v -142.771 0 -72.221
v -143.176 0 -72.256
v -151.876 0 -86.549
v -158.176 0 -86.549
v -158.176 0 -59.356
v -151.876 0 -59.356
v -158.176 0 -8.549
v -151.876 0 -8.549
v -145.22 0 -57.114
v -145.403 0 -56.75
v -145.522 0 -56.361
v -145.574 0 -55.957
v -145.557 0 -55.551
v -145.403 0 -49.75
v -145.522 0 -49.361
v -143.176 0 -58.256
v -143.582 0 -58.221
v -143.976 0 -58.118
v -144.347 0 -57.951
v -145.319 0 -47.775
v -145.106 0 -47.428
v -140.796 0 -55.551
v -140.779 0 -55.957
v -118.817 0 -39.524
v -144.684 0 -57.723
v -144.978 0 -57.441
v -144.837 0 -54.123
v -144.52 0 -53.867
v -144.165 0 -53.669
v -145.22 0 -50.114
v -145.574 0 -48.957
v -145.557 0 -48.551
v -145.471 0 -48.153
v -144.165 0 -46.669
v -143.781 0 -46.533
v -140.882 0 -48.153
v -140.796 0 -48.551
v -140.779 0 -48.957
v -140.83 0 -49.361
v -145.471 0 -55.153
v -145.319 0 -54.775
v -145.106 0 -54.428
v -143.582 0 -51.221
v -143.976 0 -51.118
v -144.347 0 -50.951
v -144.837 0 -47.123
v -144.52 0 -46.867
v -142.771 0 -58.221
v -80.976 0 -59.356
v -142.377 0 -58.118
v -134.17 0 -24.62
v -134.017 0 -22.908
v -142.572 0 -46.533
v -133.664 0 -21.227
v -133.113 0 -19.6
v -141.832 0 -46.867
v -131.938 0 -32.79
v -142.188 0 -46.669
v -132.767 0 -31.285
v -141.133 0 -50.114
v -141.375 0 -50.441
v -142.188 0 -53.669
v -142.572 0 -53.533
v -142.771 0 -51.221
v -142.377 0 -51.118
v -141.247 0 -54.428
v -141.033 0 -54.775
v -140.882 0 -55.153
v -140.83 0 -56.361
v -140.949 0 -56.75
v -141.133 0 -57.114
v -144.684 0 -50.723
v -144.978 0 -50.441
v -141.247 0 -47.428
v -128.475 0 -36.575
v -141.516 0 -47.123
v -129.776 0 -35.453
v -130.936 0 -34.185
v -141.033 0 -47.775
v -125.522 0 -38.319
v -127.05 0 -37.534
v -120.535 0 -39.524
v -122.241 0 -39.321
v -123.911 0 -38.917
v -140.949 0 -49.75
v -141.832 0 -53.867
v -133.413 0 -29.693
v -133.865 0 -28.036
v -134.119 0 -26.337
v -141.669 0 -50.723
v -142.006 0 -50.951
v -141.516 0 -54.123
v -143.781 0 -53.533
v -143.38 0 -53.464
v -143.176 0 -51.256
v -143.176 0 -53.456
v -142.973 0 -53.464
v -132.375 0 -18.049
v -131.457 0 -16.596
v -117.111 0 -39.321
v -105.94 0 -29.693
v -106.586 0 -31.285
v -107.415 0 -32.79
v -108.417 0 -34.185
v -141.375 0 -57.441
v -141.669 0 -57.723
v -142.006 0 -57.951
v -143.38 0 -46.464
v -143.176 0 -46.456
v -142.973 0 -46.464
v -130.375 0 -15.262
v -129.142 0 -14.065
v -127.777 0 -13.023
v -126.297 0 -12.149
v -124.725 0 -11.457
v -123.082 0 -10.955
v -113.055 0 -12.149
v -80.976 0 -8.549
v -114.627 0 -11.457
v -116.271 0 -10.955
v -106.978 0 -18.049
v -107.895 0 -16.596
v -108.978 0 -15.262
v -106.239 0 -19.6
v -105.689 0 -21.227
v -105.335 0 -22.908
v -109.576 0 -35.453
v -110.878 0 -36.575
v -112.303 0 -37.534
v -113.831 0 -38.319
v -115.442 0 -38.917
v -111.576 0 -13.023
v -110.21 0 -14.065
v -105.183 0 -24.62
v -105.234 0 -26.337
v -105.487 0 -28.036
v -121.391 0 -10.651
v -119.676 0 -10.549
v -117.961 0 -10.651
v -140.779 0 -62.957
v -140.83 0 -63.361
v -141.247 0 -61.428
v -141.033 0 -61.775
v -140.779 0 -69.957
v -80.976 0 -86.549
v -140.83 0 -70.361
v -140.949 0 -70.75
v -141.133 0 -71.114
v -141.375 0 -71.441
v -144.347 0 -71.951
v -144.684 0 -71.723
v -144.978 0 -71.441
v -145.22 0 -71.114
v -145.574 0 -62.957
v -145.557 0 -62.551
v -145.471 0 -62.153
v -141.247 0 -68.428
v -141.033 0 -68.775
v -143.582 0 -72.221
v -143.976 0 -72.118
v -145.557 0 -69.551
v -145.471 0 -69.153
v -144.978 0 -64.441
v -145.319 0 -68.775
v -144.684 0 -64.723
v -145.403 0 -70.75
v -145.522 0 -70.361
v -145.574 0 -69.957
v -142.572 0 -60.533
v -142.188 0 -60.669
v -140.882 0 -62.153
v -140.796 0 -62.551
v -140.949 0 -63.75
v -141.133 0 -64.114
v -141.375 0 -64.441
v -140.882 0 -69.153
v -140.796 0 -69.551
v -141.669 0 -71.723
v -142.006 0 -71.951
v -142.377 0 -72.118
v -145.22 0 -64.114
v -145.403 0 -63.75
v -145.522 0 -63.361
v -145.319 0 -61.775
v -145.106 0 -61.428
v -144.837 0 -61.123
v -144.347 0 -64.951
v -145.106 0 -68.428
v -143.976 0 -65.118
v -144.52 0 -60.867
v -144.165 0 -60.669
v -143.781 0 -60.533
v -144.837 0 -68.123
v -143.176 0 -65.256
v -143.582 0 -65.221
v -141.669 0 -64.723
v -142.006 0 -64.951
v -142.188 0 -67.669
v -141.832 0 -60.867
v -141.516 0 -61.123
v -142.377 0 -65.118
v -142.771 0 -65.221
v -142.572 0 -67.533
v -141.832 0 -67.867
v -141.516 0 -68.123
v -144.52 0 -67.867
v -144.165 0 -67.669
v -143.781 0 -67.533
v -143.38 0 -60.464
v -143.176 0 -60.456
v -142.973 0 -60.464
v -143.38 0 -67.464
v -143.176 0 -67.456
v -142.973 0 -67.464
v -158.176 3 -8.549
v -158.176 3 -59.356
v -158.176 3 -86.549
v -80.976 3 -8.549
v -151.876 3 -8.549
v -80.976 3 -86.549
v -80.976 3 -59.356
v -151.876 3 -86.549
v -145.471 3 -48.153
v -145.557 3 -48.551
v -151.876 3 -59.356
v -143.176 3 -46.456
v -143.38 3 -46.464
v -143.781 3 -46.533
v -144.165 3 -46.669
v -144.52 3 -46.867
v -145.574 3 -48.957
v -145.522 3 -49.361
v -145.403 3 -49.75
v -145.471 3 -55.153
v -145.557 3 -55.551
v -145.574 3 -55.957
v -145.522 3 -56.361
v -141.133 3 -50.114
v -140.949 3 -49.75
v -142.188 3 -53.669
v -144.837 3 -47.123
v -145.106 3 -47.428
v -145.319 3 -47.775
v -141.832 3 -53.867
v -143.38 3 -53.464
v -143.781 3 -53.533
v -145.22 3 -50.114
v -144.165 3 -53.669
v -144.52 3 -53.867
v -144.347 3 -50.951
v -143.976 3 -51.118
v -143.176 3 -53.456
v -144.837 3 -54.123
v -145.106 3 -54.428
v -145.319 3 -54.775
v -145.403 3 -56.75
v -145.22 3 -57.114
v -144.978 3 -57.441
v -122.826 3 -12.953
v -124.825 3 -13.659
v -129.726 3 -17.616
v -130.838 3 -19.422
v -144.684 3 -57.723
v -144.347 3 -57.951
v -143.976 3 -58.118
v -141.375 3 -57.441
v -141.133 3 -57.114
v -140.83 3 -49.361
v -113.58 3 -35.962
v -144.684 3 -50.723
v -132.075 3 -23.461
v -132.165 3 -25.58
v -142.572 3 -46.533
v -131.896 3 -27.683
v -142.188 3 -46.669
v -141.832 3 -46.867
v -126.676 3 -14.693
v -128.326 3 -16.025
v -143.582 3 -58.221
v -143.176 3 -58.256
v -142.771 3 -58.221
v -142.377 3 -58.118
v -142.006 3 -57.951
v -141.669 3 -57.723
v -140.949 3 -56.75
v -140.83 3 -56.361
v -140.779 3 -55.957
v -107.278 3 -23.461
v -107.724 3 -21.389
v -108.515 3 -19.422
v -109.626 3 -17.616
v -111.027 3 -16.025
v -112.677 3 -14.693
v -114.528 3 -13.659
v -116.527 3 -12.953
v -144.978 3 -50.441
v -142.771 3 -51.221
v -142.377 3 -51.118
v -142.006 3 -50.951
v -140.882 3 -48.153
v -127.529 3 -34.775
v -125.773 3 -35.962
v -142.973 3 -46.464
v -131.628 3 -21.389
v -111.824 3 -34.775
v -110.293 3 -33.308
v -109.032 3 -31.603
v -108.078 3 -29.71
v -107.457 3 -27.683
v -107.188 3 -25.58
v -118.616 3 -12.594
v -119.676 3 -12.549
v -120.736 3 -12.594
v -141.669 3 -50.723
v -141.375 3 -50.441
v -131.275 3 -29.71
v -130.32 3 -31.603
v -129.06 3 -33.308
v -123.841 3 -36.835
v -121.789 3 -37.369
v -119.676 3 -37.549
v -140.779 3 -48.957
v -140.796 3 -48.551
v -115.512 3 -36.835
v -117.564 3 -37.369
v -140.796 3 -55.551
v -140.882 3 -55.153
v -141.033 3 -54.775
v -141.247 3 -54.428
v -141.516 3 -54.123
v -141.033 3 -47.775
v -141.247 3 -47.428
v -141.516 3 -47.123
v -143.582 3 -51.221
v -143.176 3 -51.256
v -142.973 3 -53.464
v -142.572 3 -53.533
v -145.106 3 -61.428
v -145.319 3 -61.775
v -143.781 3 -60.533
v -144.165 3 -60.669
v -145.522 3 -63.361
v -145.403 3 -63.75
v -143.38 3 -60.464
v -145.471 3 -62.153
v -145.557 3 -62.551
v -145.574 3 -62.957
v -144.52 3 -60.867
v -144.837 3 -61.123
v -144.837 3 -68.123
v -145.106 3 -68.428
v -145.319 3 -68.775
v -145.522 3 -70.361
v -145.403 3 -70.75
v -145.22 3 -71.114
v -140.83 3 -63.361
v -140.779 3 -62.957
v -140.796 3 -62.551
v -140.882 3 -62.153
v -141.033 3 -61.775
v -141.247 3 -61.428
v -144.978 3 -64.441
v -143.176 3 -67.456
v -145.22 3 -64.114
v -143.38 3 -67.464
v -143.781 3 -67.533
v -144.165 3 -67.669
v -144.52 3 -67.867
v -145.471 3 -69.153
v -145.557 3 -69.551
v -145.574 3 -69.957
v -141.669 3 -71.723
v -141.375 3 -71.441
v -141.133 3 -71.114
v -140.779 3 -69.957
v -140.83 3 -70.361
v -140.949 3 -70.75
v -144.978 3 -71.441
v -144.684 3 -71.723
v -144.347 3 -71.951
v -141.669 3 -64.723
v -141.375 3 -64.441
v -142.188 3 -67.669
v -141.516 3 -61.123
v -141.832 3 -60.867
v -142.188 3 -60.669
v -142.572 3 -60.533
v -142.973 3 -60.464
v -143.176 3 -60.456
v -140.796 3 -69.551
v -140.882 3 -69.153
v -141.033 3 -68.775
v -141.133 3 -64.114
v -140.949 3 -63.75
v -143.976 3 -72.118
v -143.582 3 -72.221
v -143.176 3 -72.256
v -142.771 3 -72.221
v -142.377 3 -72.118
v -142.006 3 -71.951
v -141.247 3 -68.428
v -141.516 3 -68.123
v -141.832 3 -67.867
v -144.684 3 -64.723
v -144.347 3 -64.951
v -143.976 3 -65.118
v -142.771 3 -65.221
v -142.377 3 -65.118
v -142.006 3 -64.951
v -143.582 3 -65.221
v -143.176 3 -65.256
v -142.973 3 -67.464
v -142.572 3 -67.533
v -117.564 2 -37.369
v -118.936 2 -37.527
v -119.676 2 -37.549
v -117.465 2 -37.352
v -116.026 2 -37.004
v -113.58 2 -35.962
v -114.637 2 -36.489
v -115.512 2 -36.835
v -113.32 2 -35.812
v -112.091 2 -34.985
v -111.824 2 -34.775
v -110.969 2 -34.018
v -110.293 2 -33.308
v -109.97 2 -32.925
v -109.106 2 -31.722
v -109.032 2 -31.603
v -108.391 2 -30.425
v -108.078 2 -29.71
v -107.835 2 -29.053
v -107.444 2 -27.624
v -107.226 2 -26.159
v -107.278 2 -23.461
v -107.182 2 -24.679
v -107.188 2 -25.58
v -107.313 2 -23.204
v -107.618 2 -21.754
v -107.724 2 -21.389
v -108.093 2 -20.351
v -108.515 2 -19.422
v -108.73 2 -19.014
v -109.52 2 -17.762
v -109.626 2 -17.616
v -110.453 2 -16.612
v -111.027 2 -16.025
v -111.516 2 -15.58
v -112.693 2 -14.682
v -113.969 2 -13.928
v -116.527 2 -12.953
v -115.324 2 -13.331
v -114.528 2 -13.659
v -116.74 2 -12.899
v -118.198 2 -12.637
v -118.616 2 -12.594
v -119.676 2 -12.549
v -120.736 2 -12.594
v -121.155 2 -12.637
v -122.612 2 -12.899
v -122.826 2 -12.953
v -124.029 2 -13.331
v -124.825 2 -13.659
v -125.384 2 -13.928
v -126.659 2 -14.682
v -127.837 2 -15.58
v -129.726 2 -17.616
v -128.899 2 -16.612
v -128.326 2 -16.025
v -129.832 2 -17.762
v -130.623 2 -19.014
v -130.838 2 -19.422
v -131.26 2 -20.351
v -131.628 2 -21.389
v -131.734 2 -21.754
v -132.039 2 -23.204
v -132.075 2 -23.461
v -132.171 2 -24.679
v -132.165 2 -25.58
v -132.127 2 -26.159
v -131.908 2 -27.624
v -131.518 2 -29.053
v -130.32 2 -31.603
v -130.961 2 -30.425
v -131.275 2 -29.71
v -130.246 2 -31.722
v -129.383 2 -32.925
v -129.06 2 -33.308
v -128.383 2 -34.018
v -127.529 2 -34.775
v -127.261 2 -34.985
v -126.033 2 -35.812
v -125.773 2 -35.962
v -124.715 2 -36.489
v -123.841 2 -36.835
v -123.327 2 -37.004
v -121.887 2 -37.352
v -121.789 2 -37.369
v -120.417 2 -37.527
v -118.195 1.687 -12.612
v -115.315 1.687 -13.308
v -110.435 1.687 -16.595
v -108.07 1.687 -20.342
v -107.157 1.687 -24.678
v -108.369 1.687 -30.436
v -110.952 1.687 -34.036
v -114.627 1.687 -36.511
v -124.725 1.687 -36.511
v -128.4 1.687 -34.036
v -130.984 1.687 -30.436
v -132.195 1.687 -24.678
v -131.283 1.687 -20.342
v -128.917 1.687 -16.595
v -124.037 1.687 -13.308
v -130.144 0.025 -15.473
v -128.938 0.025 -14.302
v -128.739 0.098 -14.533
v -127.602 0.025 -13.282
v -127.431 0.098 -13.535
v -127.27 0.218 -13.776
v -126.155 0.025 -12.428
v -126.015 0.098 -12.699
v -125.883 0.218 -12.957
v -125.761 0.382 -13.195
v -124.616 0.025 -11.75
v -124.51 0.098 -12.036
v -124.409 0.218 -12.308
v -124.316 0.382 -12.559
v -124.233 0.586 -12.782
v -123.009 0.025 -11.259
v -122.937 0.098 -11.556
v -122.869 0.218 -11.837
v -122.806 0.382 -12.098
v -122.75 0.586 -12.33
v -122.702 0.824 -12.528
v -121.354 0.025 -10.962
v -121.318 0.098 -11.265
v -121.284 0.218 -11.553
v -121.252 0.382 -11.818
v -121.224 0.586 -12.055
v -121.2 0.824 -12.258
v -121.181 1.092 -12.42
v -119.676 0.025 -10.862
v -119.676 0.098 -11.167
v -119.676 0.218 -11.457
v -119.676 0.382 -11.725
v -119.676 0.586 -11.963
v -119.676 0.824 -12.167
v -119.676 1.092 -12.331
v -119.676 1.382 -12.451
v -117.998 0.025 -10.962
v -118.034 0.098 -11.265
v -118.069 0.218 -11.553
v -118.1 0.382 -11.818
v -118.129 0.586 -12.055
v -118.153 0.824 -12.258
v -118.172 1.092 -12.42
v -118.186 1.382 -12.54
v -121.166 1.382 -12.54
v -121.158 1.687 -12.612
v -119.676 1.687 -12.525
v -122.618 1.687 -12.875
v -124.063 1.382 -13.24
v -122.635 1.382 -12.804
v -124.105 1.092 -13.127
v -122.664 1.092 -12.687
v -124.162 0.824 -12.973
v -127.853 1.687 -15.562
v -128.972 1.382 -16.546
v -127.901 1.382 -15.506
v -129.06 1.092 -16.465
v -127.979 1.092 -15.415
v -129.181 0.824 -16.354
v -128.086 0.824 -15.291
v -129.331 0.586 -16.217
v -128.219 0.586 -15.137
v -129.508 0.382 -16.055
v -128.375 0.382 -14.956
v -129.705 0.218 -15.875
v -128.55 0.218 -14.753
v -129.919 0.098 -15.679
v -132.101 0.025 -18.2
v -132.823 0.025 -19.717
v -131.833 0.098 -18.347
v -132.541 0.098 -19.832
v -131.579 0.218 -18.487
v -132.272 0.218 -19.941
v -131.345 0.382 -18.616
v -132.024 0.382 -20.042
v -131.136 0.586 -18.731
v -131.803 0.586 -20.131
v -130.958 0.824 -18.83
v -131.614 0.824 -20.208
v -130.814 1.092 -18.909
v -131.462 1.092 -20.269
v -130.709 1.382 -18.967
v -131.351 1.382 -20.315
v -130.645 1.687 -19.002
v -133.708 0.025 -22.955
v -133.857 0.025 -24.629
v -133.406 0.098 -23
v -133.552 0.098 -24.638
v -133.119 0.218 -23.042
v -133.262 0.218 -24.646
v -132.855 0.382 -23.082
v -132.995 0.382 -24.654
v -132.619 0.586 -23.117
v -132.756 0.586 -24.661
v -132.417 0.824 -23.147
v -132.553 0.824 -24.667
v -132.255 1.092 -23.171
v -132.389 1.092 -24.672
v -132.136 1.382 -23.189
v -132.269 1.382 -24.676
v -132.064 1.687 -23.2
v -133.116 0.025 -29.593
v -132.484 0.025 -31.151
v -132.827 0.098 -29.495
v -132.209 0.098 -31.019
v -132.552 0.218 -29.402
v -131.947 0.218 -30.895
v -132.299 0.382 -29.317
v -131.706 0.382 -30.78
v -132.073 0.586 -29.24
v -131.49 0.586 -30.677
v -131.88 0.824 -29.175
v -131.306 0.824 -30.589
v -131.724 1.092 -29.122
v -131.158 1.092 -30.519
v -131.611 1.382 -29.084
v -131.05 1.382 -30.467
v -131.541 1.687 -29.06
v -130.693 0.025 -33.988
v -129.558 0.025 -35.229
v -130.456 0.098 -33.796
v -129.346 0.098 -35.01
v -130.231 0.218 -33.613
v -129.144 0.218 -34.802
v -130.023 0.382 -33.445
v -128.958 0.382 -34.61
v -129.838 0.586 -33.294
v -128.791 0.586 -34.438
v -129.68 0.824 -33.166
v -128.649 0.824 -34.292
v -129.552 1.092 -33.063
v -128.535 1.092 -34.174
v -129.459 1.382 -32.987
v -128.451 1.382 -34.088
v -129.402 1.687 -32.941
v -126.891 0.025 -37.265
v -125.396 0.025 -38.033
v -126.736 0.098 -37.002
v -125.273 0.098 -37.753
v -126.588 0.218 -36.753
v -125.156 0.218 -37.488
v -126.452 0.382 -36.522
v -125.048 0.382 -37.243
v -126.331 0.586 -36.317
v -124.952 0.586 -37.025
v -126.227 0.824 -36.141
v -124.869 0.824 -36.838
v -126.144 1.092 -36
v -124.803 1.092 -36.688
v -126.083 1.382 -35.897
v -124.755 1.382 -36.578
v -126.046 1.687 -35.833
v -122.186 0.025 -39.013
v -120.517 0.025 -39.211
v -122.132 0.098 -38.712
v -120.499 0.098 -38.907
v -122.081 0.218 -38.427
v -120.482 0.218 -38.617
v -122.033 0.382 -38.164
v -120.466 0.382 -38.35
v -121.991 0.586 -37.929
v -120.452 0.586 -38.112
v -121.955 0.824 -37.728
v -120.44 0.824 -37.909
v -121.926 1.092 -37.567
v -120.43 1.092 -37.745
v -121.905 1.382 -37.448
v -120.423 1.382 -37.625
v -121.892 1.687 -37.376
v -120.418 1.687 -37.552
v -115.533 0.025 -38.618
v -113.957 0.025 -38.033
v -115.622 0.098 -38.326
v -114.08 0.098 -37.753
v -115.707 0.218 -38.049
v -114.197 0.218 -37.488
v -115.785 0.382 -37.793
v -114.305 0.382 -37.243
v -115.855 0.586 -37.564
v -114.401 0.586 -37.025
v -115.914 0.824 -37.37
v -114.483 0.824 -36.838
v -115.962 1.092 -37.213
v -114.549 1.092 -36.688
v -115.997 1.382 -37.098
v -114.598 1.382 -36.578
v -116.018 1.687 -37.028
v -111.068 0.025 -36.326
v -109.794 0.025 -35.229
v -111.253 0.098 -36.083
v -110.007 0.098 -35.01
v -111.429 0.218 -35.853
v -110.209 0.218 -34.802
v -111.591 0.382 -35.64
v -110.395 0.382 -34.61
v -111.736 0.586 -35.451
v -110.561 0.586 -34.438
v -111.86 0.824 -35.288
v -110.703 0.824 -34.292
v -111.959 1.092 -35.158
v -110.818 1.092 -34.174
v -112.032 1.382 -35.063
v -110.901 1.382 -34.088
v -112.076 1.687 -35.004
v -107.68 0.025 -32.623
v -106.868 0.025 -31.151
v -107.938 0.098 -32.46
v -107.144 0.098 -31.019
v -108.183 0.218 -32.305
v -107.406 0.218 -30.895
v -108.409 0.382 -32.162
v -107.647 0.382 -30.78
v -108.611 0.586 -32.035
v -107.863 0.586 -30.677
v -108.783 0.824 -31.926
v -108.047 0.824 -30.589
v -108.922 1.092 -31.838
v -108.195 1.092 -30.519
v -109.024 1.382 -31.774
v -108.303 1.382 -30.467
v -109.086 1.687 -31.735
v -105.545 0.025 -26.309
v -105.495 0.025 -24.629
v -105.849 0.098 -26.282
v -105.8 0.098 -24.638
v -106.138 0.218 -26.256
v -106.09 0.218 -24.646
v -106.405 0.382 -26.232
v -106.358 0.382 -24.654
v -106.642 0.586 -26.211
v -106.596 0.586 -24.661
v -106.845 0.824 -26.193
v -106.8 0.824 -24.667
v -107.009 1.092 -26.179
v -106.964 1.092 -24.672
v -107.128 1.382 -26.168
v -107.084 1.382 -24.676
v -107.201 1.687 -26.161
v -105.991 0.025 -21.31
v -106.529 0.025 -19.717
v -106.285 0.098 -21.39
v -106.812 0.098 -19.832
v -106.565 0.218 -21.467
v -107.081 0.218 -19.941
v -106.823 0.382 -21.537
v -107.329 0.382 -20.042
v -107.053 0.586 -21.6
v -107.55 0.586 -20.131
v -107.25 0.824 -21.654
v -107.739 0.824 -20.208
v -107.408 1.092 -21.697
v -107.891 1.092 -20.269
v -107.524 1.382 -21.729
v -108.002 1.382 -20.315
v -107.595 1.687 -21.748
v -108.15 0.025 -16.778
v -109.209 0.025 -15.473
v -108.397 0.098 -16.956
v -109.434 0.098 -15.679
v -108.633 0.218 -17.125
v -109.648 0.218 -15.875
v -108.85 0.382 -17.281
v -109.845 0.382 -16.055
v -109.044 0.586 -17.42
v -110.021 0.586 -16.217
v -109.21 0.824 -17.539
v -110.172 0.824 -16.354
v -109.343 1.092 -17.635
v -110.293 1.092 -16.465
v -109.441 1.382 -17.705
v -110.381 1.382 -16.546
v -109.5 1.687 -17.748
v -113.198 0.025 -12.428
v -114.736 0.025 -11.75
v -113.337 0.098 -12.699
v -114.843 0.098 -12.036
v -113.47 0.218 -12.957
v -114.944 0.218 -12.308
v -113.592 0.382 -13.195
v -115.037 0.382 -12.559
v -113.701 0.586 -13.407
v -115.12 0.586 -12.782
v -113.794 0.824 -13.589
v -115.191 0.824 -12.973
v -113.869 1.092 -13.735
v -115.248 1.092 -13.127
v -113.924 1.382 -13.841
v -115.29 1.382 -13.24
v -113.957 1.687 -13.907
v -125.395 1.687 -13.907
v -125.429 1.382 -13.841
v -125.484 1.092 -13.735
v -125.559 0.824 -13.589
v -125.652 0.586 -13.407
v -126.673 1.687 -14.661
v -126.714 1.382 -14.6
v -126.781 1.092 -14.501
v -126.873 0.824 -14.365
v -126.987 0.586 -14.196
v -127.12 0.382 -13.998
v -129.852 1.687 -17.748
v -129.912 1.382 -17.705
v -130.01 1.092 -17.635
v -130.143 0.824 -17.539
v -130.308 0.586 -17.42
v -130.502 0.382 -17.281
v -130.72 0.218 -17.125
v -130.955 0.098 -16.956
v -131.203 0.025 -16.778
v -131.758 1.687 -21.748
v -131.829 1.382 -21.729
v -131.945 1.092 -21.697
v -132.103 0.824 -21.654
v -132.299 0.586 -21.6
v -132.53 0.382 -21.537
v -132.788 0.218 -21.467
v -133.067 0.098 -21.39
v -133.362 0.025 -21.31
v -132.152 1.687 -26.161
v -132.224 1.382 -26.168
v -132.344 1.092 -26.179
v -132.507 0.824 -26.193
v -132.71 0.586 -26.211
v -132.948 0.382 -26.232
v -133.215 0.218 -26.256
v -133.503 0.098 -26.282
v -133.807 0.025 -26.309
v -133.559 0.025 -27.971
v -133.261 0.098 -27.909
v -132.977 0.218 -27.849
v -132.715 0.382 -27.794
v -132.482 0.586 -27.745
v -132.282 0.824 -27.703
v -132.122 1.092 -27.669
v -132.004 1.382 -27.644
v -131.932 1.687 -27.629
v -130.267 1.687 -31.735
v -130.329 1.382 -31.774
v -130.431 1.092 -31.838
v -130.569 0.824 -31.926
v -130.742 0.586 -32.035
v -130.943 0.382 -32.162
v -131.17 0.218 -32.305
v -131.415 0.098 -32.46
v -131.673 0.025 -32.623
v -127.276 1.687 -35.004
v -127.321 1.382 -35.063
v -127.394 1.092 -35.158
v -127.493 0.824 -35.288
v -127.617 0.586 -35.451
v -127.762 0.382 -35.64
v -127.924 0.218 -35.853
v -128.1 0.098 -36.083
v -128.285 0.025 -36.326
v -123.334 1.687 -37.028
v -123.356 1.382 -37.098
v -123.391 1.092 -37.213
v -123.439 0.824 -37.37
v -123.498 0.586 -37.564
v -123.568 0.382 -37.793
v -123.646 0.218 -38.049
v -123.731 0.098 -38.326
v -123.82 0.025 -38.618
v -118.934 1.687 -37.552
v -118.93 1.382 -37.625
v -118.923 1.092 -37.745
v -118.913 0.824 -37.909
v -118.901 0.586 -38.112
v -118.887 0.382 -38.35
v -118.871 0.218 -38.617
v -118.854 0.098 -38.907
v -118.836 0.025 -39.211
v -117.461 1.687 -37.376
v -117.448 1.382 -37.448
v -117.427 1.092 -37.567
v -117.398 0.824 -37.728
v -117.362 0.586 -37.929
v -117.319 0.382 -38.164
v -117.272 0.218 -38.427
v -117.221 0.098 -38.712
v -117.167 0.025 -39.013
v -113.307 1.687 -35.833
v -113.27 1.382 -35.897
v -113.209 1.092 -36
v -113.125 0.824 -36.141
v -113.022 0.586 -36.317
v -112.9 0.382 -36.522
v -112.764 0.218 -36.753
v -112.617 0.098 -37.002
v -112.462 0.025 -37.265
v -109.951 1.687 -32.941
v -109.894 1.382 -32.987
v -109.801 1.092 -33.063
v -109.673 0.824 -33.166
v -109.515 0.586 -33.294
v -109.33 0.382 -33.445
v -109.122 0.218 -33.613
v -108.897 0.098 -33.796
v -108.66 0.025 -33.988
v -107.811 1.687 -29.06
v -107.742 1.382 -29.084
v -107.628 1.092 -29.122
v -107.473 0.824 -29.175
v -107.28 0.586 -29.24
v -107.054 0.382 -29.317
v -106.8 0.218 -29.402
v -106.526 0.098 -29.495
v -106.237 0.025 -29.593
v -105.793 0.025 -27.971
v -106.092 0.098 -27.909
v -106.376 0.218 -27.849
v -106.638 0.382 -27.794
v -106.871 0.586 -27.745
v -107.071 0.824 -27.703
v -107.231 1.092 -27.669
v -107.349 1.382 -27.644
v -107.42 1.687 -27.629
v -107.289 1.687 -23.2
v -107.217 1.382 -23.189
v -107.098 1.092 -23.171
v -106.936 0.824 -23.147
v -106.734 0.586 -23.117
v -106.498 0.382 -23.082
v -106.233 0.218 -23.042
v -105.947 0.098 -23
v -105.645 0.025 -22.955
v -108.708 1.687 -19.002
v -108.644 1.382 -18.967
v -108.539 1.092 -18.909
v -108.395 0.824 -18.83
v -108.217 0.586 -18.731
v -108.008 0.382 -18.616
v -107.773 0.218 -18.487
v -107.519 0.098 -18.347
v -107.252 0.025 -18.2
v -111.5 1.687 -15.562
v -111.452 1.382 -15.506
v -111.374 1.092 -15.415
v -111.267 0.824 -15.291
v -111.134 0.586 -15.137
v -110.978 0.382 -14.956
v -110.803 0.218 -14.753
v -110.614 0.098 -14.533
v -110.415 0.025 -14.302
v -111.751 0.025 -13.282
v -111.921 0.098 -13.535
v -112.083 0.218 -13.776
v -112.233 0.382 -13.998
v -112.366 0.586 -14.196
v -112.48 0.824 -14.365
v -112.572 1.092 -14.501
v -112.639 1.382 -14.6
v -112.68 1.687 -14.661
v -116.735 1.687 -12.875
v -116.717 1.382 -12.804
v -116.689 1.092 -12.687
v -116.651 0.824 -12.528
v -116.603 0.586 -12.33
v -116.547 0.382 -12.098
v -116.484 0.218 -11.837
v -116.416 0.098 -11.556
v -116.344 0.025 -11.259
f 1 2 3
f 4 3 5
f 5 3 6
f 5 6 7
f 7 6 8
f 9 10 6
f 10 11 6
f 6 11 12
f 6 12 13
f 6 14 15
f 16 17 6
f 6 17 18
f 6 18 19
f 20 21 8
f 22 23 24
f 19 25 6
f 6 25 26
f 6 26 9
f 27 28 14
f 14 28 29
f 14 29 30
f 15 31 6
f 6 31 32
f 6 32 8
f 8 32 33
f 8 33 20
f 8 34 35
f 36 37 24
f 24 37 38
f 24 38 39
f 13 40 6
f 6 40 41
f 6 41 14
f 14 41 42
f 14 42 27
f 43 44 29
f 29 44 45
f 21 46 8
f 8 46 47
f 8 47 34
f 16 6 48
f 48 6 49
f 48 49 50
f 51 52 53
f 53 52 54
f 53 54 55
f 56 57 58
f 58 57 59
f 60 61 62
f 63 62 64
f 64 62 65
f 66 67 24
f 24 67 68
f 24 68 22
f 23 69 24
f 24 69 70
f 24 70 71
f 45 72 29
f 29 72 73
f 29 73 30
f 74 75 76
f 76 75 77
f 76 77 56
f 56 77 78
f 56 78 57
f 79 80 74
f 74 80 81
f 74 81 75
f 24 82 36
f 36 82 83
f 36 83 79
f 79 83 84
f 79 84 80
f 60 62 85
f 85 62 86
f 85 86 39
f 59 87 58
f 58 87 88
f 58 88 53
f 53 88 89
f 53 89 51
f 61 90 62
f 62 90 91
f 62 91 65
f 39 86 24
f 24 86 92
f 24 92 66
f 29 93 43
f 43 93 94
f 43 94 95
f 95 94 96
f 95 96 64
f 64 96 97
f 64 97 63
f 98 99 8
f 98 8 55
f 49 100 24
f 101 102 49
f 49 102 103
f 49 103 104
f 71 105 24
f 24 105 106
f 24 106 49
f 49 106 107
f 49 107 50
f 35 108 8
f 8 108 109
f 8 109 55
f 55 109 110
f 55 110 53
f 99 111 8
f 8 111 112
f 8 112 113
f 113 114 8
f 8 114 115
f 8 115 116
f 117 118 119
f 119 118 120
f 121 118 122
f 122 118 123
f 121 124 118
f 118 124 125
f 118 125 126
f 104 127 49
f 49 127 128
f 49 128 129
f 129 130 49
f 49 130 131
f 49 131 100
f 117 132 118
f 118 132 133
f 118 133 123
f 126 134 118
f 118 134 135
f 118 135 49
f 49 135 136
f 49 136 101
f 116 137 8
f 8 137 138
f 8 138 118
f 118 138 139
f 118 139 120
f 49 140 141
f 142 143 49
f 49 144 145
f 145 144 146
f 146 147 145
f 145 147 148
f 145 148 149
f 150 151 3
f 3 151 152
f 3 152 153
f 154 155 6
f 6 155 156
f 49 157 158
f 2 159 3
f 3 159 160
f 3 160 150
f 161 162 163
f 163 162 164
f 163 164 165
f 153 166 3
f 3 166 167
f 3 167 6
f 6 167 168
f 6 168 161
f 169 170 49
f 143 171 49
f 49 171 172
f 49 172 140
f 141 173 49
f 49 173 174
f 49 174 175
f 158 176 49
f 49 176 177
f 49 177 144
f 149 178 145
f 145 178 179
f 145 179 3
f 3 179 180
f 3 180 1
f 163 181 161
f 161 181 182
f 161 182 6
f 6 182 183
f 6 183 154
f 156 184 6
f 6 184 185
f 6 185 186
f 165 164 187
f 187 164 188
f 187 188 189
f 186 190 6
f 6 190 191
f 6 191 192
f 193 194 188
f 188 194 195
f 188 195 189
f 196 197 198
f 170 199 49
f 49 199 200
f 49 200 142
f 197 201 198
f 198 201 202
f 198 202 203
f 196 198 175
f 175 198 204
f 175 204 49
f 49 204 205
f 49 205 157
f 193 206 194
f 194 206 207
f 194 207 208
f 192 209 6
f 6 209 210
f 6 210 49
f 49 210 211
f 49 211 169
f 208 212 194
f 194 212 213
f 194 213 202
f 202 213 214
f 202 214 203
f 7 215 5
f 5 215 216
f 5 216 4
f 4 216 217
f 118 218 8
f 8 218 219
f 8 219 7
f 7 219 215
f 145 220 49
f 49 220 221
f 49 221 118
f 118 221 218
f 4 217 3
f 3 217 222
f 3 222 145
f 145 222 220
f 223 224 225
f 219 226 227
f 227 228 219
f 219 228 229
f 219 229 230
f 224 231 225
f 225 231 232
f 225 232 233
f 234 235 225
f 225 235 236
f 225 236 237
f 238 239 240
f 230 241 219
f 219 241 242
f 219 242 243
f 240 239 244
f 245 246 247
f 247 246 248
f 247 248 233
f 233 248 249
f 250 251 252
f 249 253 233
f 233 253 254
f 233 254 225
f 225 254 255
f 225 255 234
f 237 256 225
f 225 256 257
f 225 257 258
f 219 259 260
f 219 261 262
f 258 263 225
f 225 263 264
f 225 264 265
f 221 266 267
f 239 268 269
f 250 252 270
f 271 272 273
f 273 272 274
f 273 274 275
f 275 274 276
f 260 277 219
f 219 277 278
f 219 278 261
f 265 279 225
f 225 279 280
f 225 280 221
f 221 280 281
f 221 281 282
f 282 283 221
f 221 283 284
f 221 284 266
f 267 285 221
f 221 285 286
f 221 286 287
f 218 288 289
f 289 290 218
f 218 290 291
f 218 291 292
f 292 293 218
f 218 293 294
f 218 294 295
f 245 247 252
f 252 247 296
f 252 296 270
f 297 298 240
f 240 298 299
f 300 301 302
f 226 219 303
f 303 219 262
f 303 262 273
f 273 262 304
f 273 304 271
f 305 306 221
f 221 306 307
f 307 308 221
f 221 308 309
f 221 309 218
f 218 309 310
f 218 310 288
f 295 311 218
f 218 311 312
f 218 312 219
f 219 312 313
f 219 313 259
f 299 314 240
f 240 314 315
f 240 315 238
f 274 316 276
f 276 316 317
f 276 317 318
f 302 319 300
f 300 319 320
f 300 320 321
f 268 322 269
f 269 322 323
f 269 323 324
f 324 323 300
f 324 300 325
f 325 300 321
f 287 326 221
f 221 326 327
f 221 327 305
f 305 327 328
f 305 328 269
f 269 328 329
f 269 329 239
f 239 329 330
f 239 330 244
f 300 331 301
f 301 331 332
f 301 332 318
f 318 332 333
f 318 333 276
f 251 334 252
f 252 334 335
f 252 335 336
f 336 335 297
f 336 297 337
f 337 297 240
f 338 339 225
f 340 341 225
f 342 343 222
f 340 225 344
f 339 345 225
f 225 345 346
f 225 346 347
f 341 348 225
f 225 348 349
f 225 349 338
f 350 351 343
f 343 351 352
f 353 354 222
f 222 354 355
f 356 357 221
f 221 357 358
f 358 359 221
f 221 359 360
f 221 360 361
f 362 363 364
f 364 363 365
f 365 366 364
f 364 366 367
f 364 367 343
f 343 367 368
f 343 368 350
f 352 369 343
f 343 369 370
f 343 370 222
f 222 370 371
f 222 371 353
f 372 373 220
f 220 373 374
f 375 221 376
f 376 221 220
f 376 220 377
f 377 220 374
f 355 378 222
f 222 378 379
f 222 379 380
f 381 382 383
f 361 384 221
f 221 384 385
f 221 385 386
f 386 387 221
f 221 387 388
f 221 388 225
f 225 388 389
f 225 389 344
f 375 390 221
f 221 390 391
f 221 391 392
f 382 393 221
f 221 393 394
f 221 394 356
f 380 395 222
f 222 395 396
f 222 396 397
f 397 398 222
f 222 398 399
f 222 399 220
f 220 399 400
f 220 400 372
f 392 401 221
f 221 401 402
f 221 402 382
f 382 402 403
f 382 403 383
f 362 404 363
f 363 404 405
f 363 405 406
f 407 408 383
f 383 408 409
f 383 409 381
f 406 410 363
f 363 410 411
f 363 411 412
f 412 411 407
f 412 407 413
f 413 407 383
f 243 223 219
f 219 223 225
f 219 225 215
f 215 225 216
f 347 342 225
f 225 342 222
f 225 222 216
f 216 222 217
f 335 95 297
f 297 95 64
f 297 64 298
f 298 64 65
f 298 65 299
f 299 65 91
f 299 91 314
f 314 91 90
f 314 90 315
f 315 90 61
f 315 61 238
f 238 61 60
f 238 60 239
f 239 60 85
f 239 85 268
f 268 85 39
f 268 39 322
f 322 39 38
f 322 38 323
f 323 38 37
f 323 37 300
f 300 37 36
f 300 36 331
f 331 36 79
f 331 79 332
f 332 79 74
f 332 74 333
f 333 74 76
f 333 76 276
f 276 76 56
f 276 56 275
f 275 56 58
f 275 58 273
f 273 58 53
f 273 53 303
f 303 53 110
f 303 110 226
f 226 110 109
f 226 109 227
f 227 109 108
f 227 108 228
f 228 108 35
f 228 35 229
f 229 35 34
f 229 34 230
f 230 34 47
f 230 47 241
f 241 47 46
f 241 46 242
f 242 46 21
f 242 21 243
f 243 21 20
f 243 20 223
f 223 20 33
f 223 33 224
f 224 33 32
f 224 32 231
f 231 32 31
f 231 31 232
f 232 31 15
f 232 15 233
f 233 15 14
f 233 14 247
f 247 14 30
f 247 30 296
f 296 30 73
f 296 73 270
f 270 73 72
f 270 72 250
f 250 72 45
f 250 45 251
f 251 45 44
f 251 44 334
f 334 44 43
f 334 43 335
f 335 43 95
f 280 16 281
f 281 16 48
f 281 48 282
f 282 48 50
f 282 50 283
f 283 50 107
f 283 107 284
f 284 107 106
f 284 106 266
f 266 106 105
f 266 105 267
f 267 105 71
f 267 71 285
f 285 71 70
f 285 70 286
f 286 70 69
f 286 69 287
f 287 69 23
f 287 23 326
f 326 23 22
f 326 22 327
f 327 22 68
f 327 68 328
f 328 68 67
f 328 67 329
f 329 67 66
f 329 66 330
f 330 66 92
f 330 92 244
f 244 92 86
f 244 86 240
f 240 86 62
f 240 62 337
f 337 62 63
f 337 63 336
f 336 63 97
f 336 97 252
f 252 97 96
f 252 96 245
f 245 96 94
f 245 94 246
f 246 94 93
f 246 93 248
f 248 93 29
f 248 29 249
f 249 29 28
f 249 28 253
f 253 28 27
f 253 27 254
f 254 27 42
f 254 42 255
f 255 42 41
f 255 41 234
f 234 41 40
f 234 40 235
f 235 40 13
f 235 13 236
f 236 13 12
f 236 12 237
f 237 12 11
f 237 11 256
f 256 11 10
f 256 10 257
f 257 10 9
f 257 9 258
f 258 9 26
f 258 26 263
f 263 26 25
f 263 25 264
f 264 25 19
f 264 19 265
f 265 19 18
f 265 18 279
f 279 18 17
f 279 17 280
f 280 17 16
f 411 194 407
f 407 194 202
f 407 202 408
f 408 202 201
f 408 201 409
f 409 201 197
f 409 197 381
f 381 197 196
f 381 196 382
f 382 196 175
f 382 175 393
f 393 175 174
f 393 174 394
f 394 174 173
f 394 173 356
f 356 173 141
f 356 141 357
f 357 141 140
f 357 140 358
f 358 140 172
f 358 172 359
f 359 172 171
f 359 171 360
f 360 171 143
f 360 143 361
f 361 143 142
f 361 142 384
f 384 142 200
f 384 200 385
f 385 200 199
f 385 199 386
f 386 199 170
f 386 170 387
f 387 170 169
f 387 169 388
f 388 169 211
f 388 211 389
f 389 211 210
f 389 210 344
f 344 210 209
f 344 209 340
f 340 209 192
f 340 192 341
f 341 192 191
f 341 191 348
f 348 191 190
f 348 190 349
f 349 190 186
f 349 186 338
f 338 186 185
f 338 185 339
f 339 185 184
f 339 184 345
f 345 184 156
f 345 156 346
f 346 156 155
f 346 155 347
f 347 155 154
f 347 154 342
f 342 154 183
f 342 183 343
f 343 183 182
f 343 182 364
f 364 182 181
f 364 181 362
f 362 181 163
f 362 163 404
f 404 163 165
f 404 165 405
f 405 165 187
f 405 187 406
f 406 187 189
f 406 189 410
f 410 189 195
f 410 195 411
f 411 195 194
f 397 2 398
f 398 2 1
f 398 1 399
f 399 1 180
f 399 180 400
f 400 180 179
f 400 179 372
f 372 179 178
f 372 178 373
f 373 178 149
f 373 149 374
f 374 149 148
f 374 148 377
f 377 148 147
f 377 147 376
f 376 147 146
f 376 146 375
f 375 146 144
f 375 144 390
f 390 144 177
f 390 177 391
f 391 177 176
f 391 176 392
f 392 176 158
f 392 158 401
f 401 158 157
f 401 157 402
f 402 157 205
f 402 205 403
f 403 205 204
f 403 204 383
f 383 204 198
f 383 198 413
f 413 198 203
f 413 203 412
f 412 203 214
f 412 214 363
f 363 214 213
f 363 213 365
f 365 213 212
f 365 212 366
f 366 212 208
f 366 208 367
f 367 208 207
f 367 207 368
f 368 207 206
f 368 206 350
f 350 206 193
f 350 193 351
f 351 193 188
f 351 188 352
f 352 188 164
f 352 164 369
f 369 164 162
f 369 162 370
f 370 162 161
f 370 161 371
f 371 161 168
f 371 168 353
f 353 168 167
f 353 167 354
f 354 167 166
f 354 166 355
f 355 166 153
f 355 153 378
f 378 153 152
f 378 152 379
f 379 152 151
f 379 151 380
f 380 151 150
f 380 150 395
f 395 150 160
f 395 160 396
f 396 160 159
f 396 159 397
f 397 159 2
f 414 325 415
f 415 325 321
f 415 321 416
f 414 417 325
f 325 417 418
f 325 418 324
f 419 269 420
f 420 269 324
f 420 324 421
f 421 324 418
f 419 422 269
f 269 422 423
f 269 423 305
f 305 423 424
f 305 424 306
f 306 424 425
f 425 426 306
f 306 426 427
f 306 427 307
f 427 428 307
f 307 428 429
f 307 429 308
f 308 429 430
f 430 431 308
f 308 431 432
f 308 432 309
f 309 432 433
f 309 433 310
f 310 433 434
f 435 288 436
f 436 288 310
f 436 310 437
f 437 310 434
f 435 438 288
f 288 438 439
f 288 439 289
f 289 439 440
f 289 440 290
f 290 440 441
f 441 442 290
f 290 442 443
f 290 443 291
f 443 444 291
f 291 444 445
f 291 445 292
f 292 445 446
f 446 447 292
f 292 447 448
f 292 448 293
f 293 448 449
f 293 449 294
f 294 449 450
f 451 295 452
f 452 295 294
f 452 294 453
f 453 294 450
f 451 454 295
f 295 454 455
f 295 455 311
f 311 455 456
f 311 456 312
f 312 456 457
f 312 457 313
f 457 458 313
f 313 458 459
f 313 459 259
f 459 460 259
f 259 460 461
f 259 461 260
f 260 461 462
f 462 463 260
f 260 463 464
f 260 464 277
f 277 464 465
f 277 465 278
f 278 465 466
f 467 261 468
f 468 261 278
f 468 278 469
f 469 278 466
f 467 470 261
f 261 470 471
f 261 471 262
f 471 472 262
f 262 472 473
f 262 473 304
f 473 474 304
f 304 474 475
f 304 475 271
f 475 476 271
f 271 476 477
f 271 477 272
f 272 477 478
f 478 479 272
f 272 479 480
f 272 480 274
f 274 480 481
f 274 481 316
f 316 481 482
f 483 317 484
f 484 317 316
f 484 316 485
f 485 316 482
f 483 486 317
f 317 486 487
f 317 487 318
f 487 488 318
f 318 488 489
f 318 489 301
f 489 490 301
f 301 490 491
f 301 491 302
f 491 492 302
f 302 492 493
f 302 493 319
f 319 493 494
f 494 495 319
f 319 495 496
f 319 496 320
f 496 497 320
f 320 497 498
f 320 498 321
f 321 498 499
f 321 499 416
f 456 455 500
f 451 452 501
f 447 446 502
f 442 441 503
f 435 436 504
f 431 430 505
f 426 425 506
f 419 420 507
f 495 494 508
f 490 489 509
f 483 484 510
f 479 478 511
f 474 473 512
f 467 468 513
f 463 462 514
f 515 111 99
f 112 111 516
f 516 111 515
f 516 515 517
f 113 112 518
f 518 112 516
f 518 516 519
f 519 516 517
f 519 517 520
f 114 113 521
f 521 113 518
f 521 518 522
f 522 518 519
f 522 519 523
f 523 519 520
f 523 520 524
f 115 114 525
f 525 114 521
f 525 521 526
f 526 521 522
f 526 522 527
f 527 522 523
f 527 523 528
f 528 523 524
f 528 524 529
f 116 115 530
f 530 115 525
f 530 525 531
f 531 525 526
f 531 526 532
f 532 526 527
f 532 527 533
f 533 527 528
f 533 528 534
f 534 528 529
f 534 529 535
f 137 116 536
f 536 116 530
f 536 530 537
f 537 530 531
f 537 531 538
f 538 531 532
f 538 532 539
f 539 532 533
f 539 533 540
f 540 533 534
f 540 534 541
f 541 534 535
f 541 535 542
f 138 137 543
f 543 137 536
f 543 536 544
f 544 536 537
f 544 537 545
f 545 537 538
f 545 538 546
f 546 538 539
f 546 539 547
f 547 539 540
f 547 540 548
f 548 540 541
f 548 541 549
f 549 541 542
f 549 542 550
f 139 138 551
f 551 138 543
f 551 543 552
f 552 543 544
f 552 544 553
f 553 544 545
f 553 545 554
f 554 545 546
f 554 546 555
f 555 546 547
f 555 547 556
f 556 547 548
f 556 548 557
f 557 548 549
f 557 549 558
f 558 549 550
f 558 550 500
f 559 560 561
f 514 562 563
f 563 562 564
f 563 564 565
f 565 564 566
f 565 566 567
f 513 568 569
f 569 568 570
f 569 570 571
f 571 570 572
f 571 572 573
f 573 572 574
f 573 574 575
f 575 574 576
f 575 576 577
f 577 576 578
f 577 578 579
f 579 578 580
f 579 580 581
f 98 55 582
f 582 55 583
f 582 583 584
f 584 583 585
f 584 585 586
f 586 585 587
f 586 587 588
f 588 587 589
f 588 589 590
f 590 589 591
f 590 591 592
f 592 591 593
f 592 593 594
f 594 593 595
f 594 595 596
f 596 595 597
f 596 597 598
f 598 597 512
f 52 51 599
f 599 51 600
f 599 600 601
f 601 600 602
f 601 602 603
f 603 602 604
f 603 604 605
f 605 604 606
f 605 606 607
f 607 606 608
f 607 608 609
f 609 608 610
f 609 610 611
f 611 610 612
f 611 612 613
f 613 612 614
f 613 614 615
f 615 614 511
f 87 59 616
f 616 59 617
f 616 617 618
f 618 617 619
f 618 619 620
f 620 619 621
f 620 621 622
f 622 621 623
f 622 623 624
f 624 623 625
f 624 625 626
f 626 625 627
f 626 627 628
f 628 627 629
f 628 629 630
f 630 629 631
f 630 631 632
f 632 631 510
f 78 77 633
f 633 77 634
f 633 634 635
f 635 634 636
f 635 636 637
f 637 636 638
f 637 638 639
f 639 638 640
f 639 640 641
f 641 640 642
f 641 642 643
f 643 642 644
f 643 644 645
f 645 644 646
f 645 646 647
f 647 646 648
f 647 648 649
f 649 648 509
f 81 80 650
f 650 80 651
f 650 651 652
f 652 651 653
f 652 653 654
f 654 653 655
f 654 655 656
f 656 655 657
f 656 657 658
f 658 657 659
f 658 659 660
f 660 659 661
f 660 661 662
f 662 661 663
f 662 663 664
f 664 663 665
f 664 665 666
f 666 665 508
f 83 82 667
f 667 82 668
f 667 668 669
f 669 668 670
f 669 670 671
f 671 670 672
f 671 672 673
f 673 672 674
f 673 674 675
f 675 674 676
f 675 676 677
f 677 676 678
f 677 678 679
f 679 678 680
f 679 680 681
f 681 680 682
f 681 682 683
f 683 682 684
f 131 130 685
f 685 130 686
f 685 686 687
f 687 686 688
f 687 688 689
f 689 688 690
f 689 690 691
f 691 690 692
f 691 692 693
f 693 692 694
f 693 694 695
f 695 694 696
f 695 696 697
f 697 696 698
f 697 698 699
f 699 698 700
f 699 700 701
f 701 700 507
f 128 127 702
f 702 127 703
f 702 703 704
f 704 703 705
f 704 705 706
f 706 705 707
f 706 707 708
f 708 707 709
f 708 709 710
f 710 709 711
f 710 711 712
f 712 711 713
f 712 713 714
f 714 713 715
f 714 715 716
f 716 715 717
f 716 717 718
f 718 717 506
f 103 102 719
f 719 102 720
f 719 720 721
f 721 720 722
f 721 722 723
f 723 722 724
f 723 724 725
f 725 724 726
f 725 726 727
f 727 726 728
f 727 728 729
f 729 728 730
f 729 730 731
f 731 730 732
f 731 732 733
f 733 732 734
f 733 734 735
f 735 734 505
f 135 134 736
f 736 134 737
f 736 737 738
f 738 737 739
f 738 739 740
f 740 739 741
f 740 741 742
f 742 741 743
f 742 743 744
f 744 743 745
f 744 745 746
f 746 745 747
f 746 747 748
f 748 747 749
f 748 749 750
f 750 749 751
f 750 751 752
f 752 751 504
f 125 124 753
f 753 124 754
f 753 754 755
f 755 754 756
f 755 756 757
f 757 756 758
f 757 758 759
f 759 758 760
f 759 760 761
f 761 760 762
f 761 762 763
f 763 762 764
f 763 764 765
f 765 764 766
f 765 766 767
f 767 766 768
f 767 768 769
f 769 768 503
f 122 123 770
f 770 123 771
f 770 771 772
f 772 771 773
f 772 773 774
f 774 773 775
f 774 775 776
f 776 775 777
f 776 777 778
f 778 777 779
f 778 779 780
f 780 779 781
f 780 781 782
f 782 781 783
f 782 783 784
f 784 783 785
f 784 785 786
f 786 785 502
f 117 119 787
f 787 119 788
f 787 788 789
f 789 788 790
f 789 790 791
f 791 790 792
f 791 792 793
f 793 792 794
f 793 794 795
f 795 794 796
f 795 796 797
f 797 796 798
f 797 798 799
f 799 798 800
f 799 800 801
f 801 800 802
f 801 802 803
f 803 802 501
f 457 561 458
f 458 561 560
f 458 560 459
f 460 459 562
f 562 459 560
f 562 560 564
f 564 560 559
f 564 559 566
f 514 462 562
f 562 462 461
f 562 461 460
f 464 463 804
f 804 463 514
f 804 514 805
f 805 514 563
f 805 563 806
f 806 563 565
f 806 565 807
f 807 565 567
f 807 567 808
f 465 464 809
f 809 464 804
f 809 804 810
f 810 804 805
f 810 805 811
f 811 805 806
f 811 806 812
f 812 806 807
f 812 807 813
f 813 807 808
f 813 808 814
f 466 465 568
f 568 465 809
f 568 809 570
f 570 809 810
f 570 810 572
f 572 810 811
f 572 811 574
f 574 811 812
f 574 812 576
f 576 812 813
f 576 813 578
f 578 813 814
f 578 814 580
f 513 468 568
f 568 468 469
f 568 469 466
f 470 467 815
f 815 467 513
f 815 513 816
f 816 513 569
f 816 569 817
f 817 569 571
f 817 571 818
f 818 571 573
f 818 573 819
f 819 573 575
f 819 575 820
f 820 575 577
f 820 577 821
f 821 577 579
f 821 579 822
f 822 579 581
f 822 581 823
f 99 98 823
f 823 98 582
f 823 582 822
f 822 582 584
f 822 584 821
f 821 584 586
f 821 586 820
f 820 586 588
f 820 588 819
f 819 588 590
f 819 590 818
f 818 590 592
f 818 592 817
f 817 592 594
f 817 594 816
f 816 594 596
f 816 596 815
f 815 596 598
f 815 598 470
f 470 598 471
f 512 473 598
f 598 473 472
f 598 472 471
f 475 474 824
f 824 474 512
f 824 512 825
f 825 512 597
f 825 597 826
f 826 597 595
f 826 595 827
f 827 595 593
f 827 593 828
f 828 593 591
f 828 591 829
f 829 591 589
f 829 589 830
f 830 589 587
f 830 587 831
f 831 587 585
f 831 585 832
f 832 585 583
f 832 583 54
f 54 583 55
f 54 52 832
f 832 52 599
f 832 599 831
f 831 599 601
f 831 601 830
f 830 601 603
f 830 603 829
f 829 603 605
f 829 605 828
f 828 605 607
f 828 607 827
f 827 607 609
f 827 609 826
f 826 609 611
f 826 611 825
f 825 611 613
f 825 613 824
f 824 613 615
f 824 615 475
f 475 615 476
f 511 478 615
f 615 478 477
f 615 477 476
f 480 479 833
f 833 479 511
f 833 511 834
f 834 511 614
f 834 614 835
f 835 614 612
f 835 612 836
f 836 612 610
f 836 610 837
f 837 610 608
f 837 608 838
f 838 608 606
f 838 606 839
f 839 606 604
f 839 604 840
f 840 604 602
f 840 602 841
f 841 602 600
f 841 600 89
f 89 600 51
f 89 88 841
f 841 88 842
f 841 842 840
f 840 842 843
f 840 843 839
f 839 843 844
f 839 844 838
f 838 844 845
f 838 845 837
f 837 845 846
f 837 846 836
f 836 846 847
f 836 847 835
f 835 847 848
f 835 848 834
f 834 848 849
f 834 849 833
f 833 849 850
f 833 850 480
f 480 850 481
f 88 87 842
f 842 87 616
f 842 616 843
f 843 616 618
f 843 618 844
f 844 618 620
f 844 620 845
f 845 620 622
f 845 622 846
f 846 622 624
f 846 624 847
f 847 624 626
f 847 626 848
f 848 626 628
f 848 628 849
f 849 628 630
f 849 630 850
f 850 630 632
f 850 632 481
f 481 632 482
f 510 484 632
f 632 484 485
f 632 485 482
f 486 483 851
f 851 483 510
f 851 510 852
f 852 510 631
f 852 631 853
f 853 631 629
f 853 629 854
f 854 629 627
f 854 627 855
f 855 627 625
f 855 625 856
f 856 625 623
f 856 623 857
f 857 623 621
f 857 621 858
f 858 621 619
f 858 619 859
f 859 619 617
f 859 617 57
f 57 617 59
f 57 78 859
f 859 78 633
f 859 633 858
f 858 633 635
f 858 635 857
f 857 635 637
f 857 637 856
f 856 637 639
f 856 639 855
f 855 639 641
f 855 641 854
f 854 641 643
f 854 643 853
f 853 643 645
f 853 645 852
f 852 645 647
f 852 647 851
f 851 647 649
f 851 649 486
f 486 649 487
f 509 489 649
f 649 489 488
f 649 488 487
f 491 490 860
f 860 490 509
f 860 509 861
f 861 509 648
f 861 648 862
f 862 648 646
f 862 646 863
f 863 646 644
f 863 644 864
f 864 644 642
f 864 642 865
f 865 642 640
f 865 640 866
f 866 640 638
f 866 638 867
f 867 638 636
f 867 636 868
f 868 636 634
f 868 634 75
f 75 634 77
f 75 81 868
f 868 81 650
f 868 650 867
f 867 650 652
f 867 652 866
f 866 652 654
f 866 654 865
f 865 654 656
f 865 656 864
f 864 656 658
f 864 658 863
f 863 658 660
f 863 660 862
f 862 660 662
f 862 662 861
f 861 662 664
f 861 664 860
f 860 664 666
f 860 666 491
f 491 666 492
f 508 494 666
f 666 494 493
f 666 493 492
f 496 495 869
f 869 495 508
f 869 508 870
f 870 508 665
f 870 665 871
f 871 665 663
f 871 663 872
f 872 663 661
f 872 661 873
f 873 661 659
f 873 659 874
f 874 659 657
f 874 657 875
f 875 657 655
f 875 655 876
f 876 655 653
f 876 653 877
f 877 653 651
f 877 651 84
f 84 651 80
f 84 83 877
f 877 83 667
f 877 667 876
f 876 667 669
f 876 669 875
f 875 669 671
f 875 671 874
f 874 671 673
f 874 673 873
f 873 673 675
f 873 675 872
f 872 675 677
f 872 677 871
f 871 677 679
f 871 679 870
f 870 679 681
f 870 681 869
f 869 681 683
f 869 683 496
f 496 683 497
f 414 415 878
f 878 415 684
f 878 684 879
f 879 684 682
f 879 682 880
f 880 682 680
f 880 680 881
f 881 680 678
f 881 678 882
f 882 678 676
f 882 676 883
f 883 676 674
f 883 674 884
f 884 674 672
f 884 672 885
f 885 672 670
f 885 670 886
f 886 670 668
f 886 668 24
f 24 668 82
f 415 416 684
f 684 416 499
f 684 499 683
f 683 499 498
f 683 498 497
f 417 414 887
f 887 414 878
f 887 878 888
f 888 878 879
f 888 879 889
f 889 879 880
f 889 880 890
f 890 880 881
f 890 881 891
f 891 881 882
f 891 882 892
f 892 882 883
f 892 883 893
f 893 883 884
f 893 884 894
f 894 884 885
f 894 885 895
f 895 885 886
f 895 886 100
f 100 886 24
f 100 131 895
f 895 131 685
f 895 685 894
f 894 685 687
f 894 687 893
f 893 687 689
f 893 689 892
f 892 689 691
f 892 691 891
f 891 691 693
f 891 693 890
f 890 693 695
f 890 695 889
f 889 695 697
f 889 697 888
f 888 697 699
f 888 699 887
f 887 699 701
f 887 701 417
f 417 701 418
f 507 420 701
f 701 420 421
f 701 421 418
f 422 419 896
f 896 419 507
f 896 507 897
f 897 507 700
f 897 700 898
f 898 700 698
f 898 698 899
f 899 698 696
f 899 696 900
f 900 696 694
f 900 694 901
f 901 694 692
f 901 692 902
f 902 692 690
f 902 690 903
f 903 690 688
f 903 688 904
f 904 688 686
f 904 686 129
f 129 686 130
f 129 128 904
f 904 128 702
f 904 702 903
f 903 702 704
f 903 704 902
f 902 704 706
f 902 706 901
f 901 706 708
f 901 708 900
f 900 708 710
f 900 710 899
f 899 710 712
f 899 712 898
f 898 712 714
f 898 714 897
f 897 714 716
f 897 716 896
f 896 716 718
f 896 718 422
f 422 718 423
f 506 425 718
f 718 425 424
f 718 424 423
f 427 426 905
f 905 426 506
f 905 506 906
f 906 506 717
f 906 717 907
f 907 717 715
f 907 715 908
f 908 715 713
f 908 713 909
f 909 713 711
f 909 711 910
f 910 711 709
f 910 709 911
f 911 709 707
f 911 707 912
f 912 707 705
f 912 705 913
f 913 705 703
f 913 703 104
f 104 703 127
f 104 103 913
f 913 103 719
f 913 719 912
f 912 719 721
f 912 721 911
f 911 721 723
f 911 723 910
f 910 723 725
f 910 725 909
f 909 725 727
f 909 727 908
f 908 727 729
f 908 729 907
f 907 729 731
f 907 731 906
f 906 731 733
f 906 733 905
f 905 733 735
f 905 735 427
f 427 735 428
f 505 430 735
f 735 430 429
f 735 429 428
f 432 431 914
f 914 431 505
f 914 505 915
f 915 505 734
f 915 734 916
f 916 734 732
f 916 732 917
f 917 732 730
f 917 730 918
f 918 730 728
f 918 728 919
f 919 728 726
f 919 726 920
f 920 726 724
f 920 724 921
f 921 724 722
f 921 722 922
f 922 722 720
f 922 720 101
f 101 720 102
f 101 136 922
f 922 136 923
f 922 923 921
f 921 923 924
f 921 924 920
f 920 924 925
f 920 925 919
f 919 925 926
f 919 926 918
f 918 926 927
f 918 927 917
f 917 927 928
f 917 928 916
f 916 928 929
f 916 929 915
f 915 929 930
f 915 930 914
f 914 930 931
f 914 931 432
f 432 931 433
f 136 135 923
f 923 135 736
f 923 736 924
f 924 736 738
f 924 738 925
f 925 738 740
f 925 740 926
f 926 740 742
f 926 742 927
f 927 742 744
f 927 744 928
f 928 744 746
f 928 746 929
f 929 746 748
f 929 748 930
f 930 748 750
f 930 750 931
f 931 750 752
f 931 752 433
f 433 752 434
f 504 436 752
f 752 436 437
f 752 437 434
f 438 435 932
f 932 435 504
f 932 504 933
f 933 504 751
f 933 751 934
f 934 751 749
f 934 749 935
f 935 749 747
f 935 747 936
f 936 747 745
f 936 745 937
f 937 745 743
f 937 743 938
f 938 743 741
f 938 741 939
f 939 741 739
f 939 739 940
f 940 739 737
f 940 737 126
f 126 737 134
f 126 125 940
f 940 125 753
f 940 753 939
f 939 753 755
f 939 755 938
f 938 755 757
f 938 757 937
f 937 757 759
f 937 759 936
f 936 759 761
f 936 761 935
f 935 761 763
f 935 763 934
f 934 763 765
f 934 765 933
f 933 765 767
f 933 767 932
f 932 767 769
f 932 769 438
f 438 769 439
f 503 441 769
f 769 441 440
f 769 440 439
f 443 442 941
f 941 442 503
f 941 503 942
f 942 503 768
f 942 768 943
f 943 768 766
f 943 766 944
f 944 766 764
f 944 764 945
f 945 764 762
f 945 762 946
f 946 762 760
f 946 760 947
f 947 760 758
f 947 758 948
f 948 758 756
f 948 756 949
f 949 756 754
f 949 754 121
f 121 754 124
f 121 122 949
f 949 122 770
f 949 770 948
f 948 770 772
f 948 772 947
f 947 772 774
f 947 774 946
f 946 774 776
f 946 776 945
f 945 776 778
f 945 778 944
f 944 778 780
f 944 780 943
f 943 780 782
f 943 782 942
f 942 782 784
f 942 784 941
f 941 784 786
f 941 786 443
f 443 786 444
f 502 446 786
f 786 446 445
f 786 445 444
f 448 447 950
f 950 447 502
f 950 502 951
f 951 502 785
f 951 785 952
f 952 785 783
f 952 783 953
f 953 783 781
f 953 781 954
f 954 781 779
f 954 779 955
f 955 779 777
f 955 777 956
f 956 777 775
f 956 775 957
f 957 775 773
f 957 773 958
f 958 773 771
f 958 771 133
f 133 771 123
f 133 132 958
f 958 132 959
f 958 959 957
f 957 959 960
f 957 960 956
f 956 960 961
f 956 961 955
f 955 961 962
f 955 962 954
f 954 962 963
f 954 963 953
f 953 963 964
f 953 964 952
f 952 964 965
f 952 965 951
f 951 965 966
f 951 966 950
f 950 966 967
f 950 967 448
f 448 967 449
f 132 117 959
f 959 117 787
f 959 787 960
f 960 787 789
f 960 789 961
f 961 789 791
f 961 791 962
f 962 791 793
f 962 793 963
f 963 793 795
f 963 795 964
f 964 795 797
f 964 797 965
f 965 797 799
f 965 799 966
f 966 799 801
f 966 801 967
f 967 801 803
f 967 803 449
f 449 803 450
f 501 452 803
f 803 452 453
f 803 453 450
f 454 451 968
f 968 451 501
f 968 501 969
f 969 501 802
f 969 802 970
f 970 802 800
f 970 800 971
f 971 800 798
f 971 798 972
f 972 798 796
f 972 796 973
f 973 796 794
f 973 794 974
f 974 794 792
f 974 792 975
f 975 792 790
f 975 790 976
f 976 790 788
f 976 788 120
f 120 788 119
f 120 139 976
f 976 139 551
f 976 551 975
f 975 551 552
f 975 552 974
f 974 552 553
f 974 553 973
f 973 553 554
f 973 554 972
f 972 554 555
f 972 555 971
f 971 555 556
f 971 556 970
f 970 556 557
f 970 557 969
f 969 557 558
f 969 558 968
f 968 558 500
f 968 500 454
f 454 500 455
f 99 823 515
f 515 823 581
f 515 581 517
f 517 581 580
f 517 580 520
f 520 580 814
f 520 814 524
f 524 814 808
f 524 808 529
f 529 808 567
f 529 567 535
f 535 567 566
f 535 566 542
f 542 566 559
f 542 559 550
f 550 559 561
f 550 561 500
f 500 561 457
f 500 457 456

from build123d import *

# Parameters (mm, degrees)
SKETCH_1_W                = 77.2
SKETCH_1_H                = 78
EXTRUDE_1_DEPTH           = 3
CUT_EXTRUDE_1_DEPTH       = 87
CUT_EXTRUDE_1_DEPTH_BACK  = 71
SKETCH_2_R                = 9.75
CUT_EXTRUDE_3_DEPTH       = 150
CUT_EXTRUDE_3_DEPTH_BACK  = 207
SKETCH_3_R                = 2.4
SKETCH_11_W               = 34.361209151
SKETCH_11_H               = 23.148078535
EXTRUDE_4_DEPTH           = 3
CUT_EXTRUDE_10_DEPTH      = 17
CUT_EXTRUDE_10_DEPTH_BACK = 10
SKETCH_13_R               = 12
CHAMFER_4_SIZE            = 6
SKETCH_14_W               = 38.187974991
SKETCH_14_H               = 34.221306214
EXTRUDE_5_DEPTH           = 3
CUT_EXTRUDE_11_DEPTH      = 644
CUT_EXTRUDE_11_DEPTH_BACK = 12256
SKETCH_15_R               = 12.5
EXTRUDE_6_DEPTH           = 1
EXTRUDE_6_DEPTH_BACK      = 3
SKETCH_16_W               = 18.047356328
SKETCH_16_H               = 3.010605737
SKETCH_17_W               = 19.670999845
SKETCH_17_H               = 3.661099776
CUT_EXTRUDE_12_DEPTH      = 1
FILLET_1_R                = 2


with BuildPart() as part:
    # Эскиз1 → Бобышка-Вытянуть1 (new body)
    with BuildSketch(Plane(origin=(0, 0, 0), x_dir=(1, 0, 0), z_dir=(0, 1, 0))):
        with Locations((-119.576362238, 47.549210869)):
            Rectangle(SKETCH_1_W, SKETCH_1_H)
    extrude(amount=EXTRUDE_1_DEPTH)

    # Эскиз2 → Вырез-Вытянуть1 (cut, two sides: drawn at the far end of the back side and taken through both)
    with BuildSketch(Plane(origin=(0, 3, 0), x_dir=(1, 0, 0), z_dir=(0, 1, 0)).offset(-CUT_EXTRUDE_1_DEPTH_BACK)):
        with Locations(Location((-119.576362238, 22.549210869, 0), (0, 0, 270))):
            Circle(SKETCH_2_R)
    extrude(amount=CUT_EXTRUDE_1_DEPTH + CUT_EXTRUDE_1_DEPTH_BACK, mode=Mode.SUBTRACT)

    # Эскиз3 → Вырез-Вытянуть3 (cut, two sides: drawn at the far end of the back side and taken through both)
    with BuildSketch(Plane(origin=(0, 3, 0), x_dir=(1, 0, 0), z_dir=(0, 1, 0)).offset(-CUT_EXTRUDE_3_DEPTH_BACK)):
        with Locations(Location((-143.176362238, 69.855558065, 0), (0, 0, 270))):
            Circle(SKETCH_3_R)
        with Locations(Location((-143.176362238, 62.855558065, 0), (0, 0, 270))):
            Circle(SKETCH_3_R)
        with Locations(Location((-143.176362238, 55.855558065, 0), (0, 0, 270))):
            Circle(SKETCH_3_R)
        with Locations(Location((-143.176362238, 48.855558065, 0), (0, 0, 270))):
            Circle(SKETCH_3_R)
    extrude(amount=CUT_EXTRUDE_3_DEPTH + CUT_EXTRUDE_3_DEPTH_BACK, mode=Mode.SUBTRACT)

    # Эскиз11 → Бобышка-Вытянуть4 (add)
    with BuildSketch(Plane.XZ):
        with Locations((-119.254790978, -23.284724875)):
            Rectangle(SKETCH_11_W, SKETCH_11_H)
    extrude(amount=-EXTRUDE_4_DEPTH)

    # Эскиз13 → Вырез-Вытянуть10 (cut, two sides: drawn at the far end of the back side and taken through both)
    with BuildSketch(Plane(origin=(0, 3, 0), x_dir=(1, 0, 0), z_dir=(0, 1, 0)).offset(-CUT_EXTRUDE_10_DEPTH_BACK)):
        with Locations(Location((-119.676362238, 27.549210869, 0), (0, 0, 270))):
            Circle(SKETCH_13_R)
    extrude(amount=CUT_EXTRUDE_10_DEPTH + CUT_EXTRUDE_10_DEPTH_BACK, mode=Mode.SUBTRACT)

    # Фаска4
    # the kernel refuses this chamfer: 6 mm, written as the material it takes off along each edge
    with BuildSketch(Plane(origin=(-119.676362238, 0, -27.549210869), x_dir=(0, 0, 1), z_dir=(-1, 0, 0))) as chamfer_4_piece_1:
        Polygon((12 + CHAMFER_4_SIZE, 0), (12, CHAMFER_4_SIZE), (12, 0), align=None)
    revolve(axis=Axis((-119.676362238, 0, -27.549210869), (0, 1, 0)), mode=Mode.SUBTRACT)

    # Эскиз14 → Бобышка-Вытянуть5 (add)
    with BuildSketch(Plane(origin=(0, 3, 0), x_dir=(1, 0, 0), z_dir=(0, 1, 0))):
        with Locations((-119.593003147, 28.62902577)):
            Rectangle(SKETCH_14_W, SKETCH_14_H)
    extrude(amount=-EXTRUDE_5_DEPTH)

    # Эскиз15 → Вырез-Вытянуть11 (cut, two sides: drawn at the far end of the back side and taken through both)
    with BuildSketch(Plane(origin=(0, 3, 0), x_dir=(1, 0, 0), z_dir=(0, 1, 0)).offset(-CUT_EXTRUDE_11_DEPTH_BACK)):
        with Locations(Location((-119.676362238, 25.049210869, 0), (0, 0, 90))):
            Circle(SKETCH_15_R)
    extrude(amount=CUT_EXTRUDE_11_DEPTH + CUT_EXTRUDE_11_DEPTH_BACK, mode=Mode.SUBTRACT)

    # Эскиз16 → Бобышка-Вытянуть6 (add, two sides: drawn at the far end of the back side and taken through both)
    with BuildSketch(Plane.XZ.offset(-EXTRUDE_6_DEPTH_BACK)):
        with Locations((-119.464156945, -10.715514892)):
            Rectangle(SKETCH_16_W, SKETCH_16_H)
    extrude(amount=EXTRUDE_6_DEPTH + EXTRUDE_6_DEPTH_BACK)

    # Эскиз17 → Вырез-Вытянуть12 (cut)
    with BuildSketch(Plane(origin=(0, 0, 0), x_dir=(-1, 0, 0), z_dir=(0, -1, 0))):
        with Locations((119.795379251, 10.745864147)):
            Rectangle(SKETCH_17_W, SKETCH_17_H)
    extrude(amount=CUT_EXTRUDE_12_DEPTH, mode=Mode.SUBTRACT)

    # Скругление1
    fillet_1_edges = [part.edges().sort_by_distance(p)[0] for p in [
        (-119.676362238, 0, -12.549210869),
    ]]
    fillet(fillet_1_edges, radius=FILLET_1_R)


solid = part.part
